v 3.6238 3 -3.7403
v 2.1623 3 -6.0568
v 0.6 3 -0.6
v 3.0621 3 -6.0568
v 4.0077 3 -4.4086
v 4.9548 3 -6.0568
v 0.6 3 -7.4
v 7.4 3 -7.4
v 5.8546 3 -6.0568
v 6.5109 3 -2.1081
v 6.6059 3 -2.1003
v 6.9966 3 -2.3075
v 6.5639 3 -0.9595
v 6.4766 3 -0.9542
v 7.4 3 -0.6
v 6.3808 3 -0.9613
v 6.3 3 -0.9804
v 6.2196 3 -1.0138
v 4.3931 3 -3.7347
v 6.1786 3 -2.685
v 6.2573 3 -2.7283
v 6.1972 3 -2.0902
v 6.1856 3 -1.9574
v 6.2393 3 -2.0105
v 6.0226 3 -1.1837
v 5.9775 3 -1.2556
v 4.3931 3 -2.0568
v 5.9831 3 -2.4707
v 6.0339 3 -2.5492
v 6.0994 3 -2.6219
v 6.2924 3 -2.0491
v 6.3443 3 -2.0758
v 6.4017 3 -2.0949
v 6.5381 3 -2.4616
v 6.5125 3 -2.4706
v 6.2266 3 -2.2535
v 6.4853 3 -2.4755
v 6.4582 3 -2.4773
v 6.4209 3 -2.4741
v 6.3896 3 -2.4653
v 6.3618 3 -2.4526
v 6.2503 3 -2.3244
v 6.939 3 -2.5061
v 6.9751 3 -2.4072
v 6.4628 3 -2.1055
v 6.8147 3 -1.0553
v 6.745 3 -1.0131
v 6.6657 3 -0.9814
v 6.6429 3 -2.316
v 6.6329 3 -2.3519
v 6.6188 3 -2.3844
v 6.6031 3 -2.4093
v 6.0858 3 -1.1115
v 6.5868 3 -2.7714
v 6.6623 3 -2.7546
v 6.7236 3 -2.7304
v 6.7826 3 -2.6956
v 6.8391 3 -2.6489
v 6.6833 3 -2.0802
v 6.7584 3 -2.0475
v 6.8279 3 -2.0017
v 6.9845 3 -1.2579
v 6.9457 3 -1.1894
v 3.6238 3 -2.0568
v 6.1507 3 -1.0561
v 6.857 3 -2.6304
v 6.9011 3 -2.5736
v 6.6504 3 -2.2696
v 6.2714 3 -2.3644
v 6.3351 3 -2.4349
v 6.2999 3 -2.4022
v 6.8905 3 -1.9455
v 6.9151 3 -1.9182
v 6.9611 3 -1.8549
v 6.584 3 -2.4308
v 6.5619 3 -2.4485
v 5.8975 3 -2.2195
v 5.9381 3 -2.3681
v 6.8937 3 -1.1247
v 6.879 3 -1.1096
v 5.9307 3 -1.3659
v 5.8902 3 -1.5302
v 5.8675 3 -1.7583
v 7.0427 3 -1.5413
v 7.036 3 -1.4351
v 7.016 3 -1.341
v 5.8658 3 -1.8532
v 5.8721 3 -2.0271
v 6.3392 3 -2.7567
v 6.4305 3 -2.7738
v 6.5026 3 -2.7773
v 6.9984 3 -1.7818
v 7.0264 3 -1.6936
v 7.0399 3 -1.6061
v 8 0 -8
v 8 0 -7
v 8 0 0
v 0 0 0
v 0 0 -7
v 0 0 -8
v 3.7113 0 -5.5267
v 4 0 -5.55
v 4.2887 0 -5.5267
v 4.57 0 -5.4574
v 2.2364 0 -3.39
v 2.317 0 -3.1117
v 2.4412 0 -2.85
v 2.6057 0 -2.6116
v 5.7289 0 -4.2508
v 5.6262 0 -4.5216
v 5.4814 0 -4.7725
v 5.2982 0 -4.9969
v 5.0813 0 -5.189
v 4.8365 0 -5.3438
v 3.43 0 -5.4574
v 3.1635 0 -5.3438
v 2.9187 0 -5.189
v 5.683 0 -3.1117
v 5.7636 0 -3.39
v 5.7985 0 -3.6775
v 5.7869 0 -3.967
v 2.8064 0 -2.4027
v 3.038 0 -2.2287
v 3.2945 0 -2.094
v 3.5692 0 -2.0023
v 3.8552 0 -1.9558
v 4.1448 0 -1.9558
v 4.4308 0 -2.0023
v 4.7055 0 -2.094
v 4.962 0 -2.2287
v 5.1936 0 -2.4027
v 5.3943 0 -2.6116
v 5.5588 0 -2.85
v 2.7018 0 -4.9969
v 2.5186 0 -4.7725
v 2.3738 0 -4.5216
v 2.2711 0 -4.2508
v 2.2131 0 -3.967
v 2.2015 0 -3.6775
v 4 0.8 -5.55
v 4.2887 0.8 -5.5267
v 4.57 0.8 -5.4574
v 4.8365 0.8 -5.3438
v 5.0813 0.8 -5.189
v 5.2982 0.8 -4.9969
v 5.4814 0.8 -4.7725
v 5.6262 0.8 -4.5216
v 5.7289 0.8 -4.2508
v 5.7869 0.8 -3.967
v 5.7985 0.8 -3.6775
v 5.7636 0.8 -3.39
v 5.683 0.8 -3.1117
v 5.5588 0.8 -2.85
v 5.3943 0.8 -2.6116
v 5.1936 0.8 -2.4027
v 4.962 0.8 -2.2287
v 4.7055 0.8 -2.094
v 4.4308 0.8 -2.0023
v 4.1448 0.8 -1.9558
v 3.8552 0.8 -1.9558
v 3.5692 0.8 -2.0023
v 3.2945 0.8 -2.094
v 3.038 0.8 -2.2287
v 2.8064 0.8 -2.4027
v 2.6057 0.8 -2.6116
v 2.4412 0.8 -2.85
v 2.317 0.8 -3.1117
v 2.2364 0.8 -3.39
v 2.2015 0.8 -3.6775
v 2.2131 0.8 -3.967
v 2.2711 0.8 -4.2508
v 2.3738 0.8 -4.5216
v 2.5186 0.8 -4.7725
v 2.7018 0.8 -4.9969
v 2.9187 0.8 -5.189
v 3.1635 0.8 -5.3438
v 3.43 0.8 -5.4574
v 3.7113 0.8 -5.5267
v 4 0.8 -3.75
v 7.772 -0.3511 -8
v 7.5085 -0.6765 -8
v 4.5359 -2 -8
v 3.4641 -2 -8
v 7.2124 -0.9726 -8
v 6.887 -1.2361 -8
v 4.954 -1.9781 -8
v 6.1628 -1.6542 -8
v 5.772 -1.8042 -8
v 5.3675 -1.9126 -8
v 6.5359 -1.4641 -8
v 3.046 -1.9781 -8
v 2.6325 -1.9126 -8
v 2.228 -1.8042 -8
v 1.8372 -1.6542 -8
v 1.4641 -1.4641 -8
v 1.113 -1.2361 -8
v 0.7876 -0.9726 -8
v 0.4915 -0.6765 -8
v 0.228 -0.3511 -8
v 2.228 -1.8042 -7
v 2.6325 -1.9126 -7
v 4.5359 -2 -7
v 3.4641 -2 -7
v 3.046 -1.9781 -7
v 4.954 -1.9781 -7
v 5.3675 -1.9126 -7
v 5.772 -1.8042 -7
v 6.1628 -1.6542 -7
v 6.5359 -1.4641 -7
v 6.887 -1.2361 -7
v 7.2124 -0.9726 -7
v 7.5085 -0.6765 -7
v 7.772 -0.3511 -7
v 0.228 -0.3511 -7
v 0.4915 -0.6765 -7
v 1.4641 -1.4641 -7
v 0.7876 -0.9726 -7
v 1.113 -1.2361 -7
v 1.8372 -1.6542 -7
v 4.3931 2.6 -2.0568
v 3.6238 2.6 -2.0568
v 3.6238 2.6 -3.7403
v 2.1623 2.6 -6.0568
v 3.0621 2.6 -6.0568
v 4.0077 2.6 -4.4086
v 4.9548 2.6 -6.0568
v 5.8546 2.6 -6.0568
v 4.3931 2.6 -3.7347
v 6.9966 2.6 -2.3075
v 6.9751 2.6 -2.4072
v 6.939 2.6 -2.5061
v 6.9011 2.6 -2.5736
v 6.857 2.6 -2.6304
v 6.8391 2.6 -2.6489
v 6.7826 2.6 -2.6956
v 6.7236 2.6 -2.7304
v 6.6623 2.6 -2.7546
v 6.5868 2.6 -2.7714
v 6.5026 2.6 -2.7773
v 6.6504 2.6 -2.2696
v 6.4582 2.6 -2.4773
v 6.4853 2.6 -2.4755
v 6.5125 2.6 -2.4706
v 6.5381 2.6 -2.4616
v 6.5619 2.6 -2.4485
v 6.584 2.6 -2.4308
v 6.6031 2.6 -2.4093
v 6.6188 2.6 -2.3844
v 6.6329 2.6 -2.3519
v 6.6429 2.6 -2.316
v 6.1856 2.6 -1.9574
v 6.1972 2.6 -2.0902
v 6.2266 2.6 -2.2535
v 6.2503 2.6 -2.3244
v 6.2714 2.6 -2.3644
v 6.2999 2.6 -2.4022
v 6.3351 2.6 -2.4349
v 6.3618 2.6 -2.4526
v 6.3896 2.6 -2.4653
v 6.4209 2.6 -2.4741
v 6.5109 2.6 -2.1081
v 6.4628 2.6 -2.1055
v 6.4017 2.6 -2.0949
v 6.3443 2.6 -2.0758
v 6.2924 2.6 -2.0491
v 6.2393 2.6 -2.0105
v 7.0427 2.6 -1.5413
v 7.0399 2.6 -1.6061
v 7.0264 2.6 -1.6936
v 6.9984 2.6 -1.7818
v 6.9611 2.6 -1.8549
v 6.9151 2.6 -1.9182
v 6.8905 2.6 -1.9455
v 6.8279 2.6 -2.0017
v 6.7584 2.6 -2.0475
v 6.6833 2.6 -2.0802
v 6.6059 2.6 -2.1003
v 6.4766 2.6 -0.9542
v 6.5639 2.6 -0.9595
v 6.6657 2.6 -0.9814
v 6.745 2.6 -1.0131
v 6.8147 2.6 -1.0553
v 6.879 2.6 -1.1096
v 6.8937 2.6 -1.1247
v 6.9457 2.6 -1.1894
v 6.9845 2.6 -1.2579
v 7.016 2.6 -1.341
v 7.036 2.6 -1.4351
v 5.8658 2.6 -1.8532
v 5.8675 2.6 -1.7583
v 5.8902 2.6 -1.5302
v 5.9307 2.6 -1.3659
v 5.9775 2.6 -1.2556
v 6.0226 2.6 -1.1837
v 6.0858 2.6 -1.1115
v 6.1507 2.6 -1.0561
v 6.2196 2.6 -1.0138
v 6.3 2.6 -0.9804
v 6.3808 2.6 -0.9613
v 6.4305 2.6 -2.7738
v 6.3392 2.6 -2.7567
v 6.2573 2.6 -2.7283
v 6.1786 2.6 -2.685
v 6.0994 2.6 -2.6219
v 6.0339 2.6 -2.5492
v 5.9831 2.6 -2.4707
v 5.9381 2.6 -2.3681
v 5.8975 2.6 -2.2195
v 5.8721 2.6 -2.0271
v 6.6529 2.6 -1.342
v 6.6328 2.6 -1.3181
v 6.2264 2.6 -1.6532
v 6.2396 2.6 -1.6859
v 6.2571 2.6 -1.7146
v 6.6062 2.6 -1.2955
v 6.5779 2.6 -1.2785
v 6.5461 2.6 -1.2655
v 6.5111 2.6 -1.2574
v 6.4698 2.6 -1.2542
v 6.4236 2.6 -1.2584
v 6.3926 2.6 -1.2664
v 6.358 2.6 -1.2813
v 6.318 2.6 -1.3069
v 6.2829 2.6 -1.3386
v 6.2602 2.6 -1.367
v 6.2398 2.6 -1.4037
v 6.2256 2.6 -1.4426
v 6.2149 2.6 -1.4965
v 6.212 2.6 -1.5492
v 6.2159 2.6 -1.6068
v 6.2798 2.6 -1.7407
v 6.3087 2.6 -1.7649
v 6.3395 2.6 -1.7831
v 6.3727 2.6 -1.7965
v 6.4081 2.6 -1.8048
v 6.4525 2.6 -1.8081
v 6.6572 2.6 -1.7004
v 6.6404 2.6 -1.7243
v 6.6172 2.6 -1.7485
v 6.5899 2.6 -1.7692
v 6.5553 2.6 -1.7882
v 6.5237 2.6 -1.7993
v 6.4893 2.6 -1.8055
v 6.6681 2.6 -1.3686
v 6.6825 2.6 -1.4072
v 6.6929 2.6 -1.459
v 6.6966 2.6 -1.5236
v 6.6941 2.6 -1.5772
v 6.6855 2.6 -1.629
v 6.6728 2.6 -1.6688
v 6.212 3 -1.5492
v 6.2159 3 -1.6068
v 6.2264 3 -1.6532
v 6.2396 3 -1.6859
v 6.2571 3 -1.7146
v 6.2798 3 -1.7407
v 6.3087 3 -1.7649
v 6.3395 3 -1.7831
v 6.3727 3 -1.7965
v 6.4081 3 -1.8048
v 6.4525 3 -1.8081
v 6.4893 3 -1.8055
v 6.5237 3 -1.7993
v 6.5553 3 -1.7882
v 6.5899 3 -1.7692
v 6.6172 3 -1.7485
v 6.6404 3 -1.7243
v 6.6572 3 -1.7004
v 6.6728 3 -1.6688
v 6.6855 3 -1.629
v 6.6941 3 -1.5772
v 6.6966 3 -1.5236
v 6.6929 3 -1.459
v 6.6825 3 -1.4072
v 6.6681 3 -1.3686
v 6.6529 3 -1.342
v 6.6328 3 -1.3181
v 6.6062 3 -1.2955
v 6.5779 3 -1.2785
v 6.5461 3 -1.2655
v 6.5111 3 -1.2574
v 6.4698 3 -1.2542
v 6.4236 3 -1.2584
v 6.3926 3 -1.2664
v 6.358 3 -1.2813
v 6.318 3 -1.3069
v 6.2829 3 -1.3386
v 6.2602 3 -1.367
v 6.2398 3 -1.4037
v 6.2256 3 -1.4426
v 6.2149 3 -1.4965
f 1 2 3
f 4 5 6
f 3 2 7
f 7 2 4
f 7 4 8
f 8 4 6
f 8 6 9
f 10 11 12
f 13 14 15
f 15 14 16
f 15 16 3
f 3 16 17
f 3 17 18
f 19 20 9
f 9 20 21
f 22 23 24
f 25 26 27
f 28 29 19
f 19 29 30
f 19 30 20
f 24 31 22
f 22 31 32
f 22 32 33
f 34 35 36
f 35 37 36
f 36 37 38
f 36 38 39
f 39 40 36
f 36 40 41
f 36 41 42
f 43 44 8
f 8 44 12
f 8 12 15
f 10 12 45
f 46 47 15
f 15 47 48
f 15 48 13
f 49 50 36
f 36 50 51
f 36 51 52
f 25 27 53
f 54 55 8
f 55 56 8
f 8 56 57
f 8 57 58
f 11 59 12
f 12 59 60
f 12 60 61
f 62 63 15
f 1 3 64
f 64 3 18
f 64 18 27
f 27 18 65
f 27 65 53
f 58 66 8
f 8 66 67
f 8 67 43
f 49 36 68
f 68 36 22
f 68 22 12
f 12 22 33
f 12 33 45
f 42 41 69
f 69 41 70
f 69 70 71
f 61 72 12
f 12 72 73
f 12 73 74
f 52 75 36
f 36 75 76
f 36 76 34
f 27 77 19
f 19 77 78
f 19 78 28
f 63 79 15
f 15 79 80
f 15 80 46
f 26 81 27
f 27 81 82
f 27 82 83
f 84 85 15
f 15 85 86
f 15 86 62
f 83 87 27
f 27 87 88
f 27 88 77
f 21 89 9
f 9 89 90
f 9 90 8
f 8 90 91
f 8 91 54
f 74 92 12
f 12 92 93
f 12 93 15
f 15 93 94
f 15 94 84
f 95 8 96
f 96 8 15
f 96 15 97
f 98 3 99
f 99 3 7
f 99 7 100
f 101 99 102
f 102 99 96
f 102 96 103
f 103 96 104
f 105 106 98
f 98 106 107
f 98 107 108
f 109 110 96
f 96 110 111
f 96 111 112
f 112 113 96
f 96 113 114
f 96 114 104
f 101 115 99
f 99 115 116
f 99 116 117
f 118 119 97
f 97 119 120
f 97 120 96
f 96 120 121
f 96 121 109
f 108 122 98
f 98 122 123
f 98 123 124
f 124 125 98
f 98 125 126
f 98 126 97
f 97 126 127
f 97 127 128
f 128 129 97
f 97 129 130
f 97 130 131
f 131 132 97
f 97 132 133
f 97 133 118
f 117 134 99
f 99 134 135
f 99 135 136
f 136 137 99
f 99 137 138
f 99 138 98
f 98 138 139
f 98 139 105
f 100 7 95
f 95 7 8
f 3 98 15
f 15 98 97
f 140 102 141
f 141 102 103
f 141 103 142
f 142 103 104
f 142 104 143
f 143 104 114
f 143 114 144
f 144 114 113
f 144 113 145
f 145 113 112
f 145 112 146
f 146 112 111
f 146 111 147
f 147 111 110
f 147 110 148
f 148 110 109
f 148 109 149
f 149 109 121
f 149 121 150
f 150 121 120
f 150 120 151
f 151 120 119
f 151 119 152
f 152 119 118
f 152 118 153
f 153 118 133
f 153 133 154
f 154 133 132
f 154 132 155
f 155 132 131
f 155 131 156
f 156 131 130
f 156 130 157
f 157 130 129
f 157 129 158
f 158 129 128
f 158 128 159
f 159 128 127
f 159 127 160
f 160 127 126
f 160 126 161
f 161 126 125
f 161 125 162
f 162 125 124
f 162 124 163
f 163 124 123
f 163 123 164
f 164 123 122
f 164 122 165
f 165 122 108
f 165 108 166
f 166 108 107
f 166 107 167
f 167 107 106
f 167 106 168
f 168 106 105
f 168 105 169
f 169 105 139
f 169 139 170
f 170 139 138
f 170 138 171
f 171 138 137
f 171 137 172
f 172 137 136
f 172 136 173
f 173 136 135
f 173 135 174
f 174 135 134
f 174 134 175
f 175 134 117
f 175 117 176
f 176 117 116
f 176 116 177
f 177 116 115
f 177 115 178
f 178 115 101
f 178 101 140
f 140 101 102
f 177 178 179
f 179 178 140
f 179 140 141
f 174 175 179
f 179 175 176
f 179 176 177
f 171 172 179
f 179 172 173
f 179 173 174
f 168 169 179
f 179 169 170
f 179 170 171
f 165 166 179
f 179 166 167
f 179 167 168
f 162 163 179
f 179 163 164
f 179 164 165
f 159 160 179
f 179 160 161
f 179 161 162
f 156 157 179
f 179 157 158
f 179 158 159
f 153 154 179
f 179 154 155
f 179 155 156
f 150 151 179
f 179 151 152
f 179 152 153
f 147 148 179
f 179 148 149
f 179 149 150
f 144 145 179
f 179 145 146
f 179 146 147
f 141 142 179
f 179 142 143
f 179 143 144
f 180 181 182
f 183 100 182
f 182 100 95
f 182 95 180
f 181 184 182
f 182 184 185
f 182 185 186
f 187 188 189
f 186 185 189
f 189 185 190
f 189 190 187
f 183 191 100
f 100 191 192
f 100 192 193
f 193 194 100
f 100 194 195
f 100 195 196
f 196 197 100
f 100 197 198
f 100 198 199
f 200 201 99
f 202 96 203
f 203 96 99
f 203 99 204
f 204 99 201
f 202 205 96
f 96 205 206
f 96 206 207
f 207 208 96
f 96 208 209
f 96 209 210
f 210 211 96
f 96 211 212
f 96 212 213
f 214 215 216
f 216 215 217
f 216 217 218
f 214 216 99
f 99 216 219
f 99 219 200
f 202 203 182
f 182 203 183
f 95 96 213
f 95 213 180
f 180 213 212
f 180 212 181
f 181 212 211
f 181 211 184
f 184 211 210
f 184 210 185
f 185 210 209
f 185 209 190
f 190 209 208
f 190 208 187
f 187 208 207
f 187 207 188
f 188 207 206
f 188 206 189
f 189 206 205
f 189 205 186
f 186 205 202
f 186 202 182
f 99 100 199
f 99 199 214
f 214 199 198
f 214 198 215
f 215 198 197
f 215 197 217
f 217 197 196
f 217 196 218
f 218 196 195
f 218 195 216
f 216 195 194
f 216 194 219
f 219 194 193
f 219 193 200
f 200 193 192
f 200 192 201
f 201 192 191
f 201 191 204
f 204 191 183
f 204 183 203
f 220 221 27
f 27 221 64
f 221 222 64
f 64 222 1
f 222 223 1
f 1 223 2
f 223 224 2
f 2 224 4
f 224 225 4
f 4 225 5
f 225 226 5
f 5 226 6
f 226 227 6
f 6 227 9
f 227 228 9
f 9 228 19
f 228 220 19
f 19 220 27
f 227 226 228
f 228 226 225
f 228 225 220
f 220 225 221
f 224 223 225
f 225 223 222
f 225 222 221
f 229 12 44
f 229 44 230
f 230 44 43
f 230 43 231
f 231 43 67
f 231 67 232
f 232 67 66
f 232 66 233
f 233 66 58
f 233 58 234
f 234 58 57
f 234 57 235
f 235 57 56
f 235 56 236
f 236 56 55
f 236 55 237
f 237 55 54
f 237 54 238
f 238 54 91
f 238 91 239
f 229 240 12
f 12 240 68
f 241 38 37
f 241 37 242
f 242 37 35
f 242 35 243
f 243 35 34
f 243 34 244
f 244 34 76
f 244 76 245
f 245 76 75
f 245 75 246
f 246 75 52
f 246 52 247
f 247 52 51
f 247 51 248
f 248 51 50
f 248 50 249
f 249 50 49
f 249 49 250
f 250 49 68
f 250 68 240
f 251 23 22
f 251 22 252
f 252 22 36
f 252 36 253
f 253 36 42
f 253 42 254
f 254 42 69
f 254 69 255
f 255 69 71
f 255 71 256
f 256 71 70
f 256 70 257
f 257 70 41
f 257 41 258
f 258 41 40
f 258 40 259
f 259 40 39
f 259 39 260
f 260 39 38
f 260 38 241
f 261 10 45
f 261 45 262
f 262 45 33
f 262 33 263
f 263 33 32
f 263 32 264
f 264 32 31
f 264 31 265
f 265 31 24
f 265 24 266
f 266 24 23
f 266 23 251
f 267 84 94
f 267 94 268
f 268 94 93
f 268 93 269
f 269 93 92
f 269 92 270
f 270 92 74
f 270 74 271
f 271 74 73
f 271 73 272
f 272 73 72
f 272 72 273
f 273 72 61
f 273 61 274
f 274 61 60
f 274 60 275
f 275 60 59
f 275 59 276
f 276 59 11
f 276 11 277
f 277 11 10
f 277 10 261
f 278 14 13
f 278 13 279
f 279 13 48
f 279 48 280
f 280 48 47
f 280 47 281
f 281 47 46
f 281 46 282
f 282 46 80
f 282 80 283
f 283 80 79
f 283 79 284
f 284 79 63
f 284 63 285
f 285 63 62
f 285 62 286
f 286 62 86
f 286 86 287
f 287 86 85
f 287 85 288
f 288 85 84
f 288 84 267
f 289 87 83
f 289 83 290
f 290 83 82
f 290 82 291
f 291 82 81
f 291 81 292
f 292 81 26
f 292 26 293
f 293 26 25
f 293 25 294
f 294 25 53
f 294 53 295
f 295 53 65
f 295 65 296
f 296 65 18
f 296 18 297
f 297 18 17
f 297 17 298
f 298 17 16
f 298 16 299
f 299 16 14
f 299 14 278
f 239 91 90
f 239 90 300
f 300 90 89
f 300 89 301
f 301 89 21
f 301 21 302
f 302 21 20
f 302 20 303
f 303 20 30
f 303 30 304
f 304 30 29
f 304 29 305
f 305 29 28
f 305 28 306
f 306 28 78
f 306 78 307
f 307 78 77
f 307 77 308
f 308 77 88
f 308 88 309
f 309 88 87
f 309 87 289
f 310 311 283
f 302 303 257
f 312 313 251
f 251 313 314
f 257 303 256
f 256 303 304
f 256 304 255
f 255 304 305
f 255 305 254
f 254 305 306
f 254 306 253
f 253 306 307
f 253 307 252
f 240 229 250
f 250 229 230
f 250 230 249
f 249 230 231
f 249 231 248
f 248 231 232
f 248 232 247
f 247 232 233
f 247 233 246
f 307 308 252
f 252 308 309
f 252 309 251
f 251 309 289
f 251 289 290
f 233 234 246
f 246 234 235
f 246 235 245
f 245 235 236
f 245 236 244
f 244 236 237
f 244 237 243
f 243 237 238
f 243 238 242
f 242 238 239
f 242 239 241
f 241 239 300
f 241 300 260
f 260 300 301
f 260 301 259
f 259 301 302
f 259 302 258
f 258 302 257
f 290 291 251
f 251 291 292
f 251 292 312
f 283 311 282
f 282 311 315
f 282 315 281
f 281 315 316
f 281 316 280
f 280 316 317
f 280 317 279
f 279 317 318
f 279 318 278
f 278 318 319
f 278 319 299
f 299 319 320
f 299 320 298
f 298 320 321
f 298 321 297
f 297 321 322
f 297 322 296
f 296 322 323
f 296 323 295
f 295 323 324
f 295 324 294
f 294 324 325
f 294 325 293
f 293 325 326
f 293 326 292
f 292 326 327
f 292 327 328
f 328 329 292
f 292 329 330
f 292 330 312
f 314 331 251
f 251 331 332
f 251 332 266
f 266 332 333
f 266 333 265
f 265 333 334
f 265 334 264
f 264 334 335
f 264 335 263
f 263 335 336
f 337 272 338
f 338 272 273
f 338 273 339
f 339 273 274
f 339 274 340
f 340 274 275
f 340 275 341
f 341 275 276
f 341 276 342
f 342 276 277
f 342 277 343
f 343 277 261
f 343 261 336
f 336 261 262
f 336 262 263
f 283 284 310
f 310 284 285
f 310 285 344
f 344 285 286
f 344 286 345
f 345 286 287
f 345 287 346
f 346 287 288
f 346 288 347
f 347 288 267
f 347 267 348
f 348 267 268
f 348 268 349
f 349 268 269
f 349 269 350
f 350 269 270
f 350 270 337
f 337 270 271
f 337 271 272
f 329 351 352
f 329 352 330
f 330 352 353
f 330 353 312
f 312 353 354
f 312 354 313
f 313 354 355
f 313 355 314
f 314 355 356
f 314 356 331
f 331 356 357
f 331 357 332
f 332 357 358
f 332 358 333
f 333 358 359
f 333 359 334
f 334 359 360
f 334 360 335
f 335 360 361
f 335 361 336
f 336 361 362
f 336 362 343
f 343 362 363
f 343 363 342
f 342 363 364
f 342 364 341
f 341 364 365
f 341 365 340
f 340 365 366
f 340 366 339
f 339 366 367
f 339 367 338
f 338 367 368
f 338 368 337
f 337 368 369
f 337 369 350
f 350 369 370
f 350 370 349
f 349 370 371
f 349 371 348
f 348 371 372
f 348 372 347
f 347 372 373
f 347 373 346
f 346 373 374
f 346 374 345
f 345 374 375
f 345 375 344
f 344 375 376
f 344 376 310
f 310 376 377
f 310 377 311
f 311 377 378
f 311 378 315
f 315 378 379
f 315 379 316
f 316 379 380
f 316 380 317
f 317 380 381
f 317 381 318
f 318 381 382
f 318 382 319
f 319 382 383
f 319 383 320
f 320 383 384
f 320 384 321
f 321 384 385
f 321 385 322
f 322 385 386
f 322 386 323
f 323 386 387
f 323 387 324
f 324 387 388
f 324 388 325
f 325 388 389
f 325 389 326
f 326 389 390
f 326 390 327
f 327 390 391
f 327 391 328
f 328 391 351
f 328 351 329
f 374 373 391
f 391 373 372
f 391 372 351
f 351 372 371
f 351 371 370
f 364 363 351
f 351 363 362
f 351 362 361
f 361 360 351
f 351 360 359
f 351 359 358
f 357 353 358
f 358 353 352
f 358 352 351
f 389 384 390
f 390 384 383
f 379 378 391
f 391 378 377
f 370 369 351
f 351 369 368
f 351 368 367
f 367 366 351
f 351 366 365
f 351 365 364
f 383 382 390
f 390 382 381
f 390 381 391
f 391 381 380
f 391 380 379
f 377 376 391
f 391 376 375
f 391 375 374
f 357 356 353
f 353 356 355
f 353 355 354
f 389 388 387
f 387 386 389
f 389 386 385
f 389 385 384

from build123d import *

# Parameters (mm, degrees)
SKETCH1_W               = 8
SKETCH1_H               = 8
BOSS_EXTRUDE1_DEPTH     = 3
CUT_EXTRUDE1_DEPTH      = 12.704699911
CUT_EXTRUDE1_DEPTH_BACK = 12.704699911
CUT_EXTRUDE2_DEPTH      = 11
SKETCH4_R               = 1.8
CUT_EXTRUDE3_DEPTH      = 0.8
SKETCH5_W               = 8
SKETCH5_H               = 1
BOSS_EXTRUDE2_DEPTH     = 2
FILLET1_R               = 4
CUT_EXTRUDE4_DEPTH      = 0.4
CUT_EXTRUDE5_DEPTH      = 0.4


with BuildPart() as part:
    # Sketch1 → Boss-Extrude1 (new body)
    with BuildSketch(Plane(origin=(0, 0, 0), x_dir=(1, 0, 0), z_dir=(0, 1, 0))):
        with Locations((4, 4)):
            Rectangle(SKETCH1_W, SKETCH1_H)
    extrude(amount=BOSS_EXTRUDE1_DEPTH)

    # Sketch2 → Cut-Extrude1 (cut, two sides: drawn at the far end of the back side and taken through both)
    with BuildSketch(Plane.XY.offset(-CUT_EXTRUDE1_DEPTH_BACK)):
        Polygon((0, 0), (0.6, 3), (0, 3), align=None)
        Polygon((8, 0), (7.4, 3), (8, 3), align=None)
    extrude(amount=CUT_EXTRUDE1_DEPTH + CUT_EXTRUDE1_DEPTH_BACK, mode=Mode.SUBTRACT)

    # Sketch3 → Cut-Extrude2 (cut)
    with BuildSketch(Plane(origin=(0, 0, 0), x_dir=(0, 0, -1), z_dir=(1, 0, 0))):
        Polygon((0, 0), (0.6, 3), (0, 3), align=None)
        Polygon((8, 3), (7.4, 3), (8, 0), align=None)
    extrude(amount=CUT_EXTRUDE2_DEPTH, mode=Mode.SUBTRACT)

    # Sketch4 → Cut-Extrude3 (cut)
    with BuildSketch(Plane.XZ):
        with Locations(Location((4, -3.75, 0), (0, 0, 270))):
            Circle(SKETCH4_R)
    extrude(amount=-CUT_EXTRUDE3_DEPTH, mode=Mode.SUBTRACT)

    # Sketch5 → Boss-Extrude2 (add)
    with BuildSketch(Plane.XZ):
        with Locations((4, -7.5)):
            Rectangle(SKETCH5_W, SKETCH5_H)
    extrude(amount=BOSS_EXTRUDE2_DEPTH)

    # Fillet1
    # the kernel refuses this fillet: 4 mm, written as the material it takes off along each edge
    with BuildSketch(Plane(origin=(8, -2, -16.660254038), x_dir=(0, 1, 0), z_dir=(0, 0, 1)), Plane(origin=(0, -2, 1.660254038), x_dir=(0, 1, 0), z_dir=(0, 0, -1))) as fillet1_piece_1:
        with BuildLine():
            CenterArc((4, 3.464101615), FILLET1_R, 180, 60)
            Line((0, 3.464101615), (-0.08, 3.464101615))
            Line((-0.08, 3.464101615), (-0.08, 0))
            Line((-0.08, 0), (0, -0.08))
            ThreePointArc((0, -0.08), (1, -0.08), (1.96, -0.069282032))
            Line((1.96, -0.069282032), (2, 0))
        make_face()
    extrude(amount=18.320508076, mode=Mode.SUBTRACT)

    # Sketch6 → Cut-Extrude4 (cut)
    with BuildSketch(Plane(origin=(0, 3, 0), x_dir=(1, 0, 0), z_dir=(0, 1, 0))):
        Polygon((3.623842243, 2.056832464), (3.623842243, 3.740326053), (2.162303782, 6.056832464), (3.062143525, 6.056832464), (4.007656346, 4.408595284), (4.95477173, 6.056832464), (5.854611474, 6.056832464), (4.393073013, 3.734717079), (4.393073013, 2.056832464), align=None)
    extrude(amount=-CUT_EXTRUDE4_DEPTH, mode=Mode.SUBTRACT)

    # Sketch7 → Cut-Extrude5 (cut)
    with BuildSketch(Plane(origin=(0, 3, 0), x_dir=(1, 0, 0), z_dir=(0, 1, 0))):
        with BuildLine():
            Line((6.99657775, 2.307478491), (6.650423904, 2.269617914))
            add(Edge.make_bspline(
                [(6.650423904, 2.269617914), (6.648104786, 2.286290214), (6.643740629, 2.317664439), (6.630814222, 2.360960848), (6.6128192, 2.397384178), (6.589720846, 2.426985356), (6.562208273, 2.449767653), (6.53085918, 2.465955864), (6.495693494, 2.475565581), (6.471038508, 2.476713937), (6.458236404, 2.477310221)],
                knots=[0, 0, 0, 0, 1.280716388, 2.410074291, 3.425374506, 4.35753932, 5.248331359, 6.12451615, 7.026154803, 8, 8, 8, 8], degree=3))
            add(Edge.make_bspline(
                [(6.458236404, 2.477310221), (6.449554942, 2.477097941), (6.432279271, 2.476675513), (6.407115159, 2.471312362), (6.382853927, 2.463353411), (6.359693582, 2.452081234), (6.337518567, 2.437536581), (6.316665994, 2.419545601), (6.296177185, 2.39905664), (6.277258092, 2.37431526), (6.259107425, 2.34501973), (6.243478966, 2.309156475), (6.229549311, 2.266758815), (6.217622545, 2.217619097), (6.206799126, 2.162049229), (6.197926997, 2.099824257), (6.190827571, 2.030888275), (6.1874217, 1.982610246), (6.18564025, 1.957358298)],
                knots=[0, 0, 0, 0, 0.642458078, 1.278459126, 1.898279436, 2.531842133, 3.181731979, 3.858193002, 4.57010051, 5.325711302, 6.161524323, 7.118599443, 8.217371811, 9.466325973, 10.864147948, 12.412648259, 14.123626419, 16, 16, 16, 16], degree=3))
            add(Edge.make_bspline(
                [(6.18564025, 1.957358298), (6.196703374, 1.969374309), (6.218396997, 1.992936442), (6.254393564, 2.023656049), (6.292105324, 2.049919261), (6.331942634, 2.071465901), (6.374122941, 2.087500286), (6.417882183, 2.099674887), (6.463793169, 2.1064945), (6.494994081, 2.107544715), (6.510880634, 2.108079452)],
                knots=[0, 0, 0, 0, 1.057745406, 2.074127497, 3.059409796, 4.031705469, 5.000875988, 5.977809597, 6.970362319, 8, 8, 8, 8], degree=3))
            add(Edge.make_bspline(
                [(6.510880634, 2.108079452), (6.528809934, 2.107563089), (6.564213931, 2.106543456), (6.616372239, 2.099391957), (6.666421561, 2.086532277), (6.714588312, 2.069136373), (6.761110551, 2.047230594), (6.805098359, 2.019501147), (6.847242227, 1.987169858), (6.886962554, 1.950231753), (6.923455982, 1.909566001), (6.95567607, 1.865643773), (6.982192143, 1.818330938), (7.00486021, 1.76868676), (7.021726117, 1.715731209), (7.033968982, 1.660226315), (7.04127711, 1.601662587), (7.042239139, 1.561706039), (7.042731596, 1.541252529)],
                knots=[0, 0, 0, 0, 0.99135015, 1.957564468, 2.903754199, 3.843479786, 4.78583385, 5.741106244, 6.712813504, 7.719198368, 8.735844933, 9.730198001, 10.724351158, 11.729813921, 12.742848014, 13.790983496, 14.86921809, 16, 16, 16, 16], degree=3))
            add(Edge.make_bspline(
                [(7.042731596, 1.541252529), (7.042231952, 1.519599685), (7.041257525, 1.477371451), (7.034085066, 1.415527203), (7.021415455, 1.357153196), (7.004106031, 1.301781092), (6.981716795, 1.249849655), (6.954594052, 1.200930916), (6.921819947, 1.155860856), (6.884881845, 1.114033218), (6.84370317, 1.076707467), (6.799818397, 1.043655074), (6.752740779, 1.016179585), (6.703166183, 0.993054256), (6.650243128, 0.9760833), (6.594904638, 0.963355935), (6.536700741, 0.955593381), (6.496962304, 0.954693712), (6.476625827, 0.954233298)],
                knots=[0, 0, 0, 0, 1.13287417, 2.209376133, 3.25169942, 4.254157582, 5.240146322, 6.205890558, 7.174579019, 8.150183866, 9.1206468, 10.07783463, 11.019441811, 11.967766696, 12.934309213, 13.921380422, 14.936249089, 16, 16, 16, 16], degree=3))
            add(Edge.make_bspline(
                [(6.476625827, 0.954233298), (6.454835686, 0.954842926), (6.411992392, 0.956041562), (6.349274568, 0.965905733), (6.289647802, 0.982594351), (6.233119501, 1.005900716), (6.179219819, 1.035216515), (6.128449255, 1.071632083), (6.080942348, 1.114800151), (6.036070744, 1.164136126), (5.995238787, 1.221123075), (5.960465944, 1.286988003), (5.930975089, 1.361009558), (5.906965213, 1.443377578), (5.888431321, 1.534085529), (5.875498792, 1.633141016), (5.86690889, 1.740380226), (5.866183985, 1.814672002), (5.865808519, 1.853151567)],
                knots=[0, 0, 0, 0, 0.852151446, 1.675481364, 2.476404467, 3.269281233, 4.062617998, 4.871616733, 5.707301388, 6.56955125, 7.476395267, 8.442009786, 9.475854496, 10.58877921, 11.794095973, 13.094195288, 14.494932947, 16, 16, 16, 16], degree=3))
            add(Edge.make_bspline(
                [(5.865808519, 1.853151567), (5.866346697, 1.892590697), (5.867386586, 1.968796599), (5.875754473, 2.078827487), (5.889046125, 2.180436336), (5.908408745, 2.273394012), (5.933175033, 2.357893394), (5.963200156, 2.434104295), (5.99923844, 2.501750812), (6.041138584, 2.560612949), (6.087240817, 2.61177964), (6.136777869, 2.655945181), (6.189560624, 2.693536639), (6.245587817, 2.724459089), (6.305319384, 2.747901225), (6.368188753, 2.764829378), (6.434301522, 2.775708833), (6.479587723, 2.776770851), (6.502587365, 2.777310221)],
                knots=[0, 0, 0, 0, 1.491699013, 2.882321987, 4.171520357, 5.365488089, 6.470299549, 7.49861535, 8.458736801, 9.361983288, 10.224742848, 11.058789056, 11.867429157, 12.671146298, 13.473202851, 14.288259215, 15.130652936, 16, 16, 16, 16], degree=3))
            add(Edge.make_bspline(
                [(6.502587365, 2.777310221), (6.518832845, 2.777017956), (6.550590682, 2.776446616), (6.597136362, 2.770379458), (6.641540508, 2.76110179), (6.683919501, 2.748259344), (6.723974963, 2.731060825), (6.761865954, 2.710109046), (6.797719857, 2.685460752), (6.831350121, 2.657274635), (6.862486078, 2.625465393), (6.890601127, 2.589961055), (6.915881459, 2.551190115), (6.938437714, 2.509184749), (6.957357529, 2.46354265), (6.973622233, 2.414622738), (6.98699882, 2.362319913), (6.993336088, 2.326037695), (6.99657775, 2.307478491)],
                knots=[0, 0, 0, 0, 1.036027791, 2.025301876, 2.989435482, 3.928225244, 4.845595412, 5.765526461, 6.686607585, 7.61747015, 8.561102691, 9.521661062, 10.50224679, 11.510949117, 12.559251378, 13.650572309, 14.798212656, 16, 16, 16, 16], degree=3))
        make_face()
        with BuildLine():
            add(Edge.make_bspline(
                [(6.211962365, 1.549185221), (6.212093793, 1.537753077), (6.212350595, 1.515415322), (6.216561681, 1.483001611), (6.222614755, 1.452614338), (6.230767911, 1.42408476), (6.242068736, 1.397844656), (6.255476173, 1.373367715), (6.271335314, 1.350875727), (6.295669246, 1.324486058), (6.329294099, 1.29676891), (6.373421783, 1.272086886), (6.420703408, 1.256744198), (6.453316703, 1.255075433), (6.469774865, 1.254233298)],
                knots=[0, 0, 0, 0, 0.93816693, 1.833124408, 2.679057427, 3.481731691, 4.264557977, 5.020023694, 5.770442996, 6.518065735, 7.962605608, 9.32780964, 10.651490302, 12, 12, 12, 12], degree=3))
            add(Edge.make_bspline(
                [(6.469774865, 1.254233298), (6.485365796, 1.254933043), (6.51571185, 1.256295021), (6.559046727, 1.268742487), (6.598409917, 1.288373431), (6.627266187, 1.311420354), (6.647387039, 1.333836313), (6.660907792, 1.353494474), (6.671913698, 1.375919542), (6.680911589, 1.400742183), (6.688159323, 1.427866383), (6.693107691, 1.457564676), (6.69591447, 1.48975573), (6.696351403, 1.512040132), (6.69657775, 1.52358426)],
                knots=[0, 0, 0, 0, 1.399678333, 2.724321989, 4.020062797, 5.33532049, 6.016755754, 6.724441967, 7.473839083, 8.257094862, 9.096253071, 9.995581596, 10.961638663, 12, 12, 12, 12], degree=3))
            add(Edge.make_bspline(
                [(6.69657775, 1.52358426), (6.696384678, 1.535490976), (6.696011412, 1.558510238), (6.692745041, 1.591780733), (6.687401372, 1.622537963), (6.679930507, 1.650999261), (6.669817892, 1.676783929), (6.657887501, 1.700412041), (6.643402955, 1.721242874), (6.621876525, 1.745742616), (6.590576263, 1.770429427), (6.548753213, 1.792915191), (6.501874013, 1.805662518), (6.469248141, 1.807258544), (6.452467173, 1.808079452)],
                knots=[0, 0, 0, 0, 1.008384627, 1.949510571, 2.828269698, 3.650667555, 4.437180943, 5.170285793, 5.887596972, 6.580056709, 7.926803404, 9.238379296, 10.579573008, 12, 12, 12, 12], degree=3))
            add(Edge.make_bspline(
                [(6.452467173, 1.808079452), (6.436151813, 1.807414866), (6.404464825, 1.806124136), (6.358926875, 1.793162443), (6.31725918, 1.772538153), (6.286568407, 1.748308757), (6.264936989, 1.725473324), (6.25076935, 1.706030549), (6.238437114, 1.684862342), (6.228698053, 1.661421349), (6.221189386, 1.636147459), (6.215803903, 1.608867965), (6.212544961, 1.579673333), (6.212160051, 1.559530412), (6.211962365, 1.549185221)],
                knots=[0, 0, 0, 0, 1.469034193, 2.853094746, 4.235454457, 5.641396914, 6.354997179, 7.06867986, 7.807229614, 8.560602297, 9.353235934, 10.182779392, 11.06669468, 12, 12, 12, 12], degree=3))
        make_face(mode=Mode.SUBTRACT)
    extrude(amount=-CUT_EXTRUDE5_DEPTH, mode=Mode.SUBTRACT)


solid = part.part
